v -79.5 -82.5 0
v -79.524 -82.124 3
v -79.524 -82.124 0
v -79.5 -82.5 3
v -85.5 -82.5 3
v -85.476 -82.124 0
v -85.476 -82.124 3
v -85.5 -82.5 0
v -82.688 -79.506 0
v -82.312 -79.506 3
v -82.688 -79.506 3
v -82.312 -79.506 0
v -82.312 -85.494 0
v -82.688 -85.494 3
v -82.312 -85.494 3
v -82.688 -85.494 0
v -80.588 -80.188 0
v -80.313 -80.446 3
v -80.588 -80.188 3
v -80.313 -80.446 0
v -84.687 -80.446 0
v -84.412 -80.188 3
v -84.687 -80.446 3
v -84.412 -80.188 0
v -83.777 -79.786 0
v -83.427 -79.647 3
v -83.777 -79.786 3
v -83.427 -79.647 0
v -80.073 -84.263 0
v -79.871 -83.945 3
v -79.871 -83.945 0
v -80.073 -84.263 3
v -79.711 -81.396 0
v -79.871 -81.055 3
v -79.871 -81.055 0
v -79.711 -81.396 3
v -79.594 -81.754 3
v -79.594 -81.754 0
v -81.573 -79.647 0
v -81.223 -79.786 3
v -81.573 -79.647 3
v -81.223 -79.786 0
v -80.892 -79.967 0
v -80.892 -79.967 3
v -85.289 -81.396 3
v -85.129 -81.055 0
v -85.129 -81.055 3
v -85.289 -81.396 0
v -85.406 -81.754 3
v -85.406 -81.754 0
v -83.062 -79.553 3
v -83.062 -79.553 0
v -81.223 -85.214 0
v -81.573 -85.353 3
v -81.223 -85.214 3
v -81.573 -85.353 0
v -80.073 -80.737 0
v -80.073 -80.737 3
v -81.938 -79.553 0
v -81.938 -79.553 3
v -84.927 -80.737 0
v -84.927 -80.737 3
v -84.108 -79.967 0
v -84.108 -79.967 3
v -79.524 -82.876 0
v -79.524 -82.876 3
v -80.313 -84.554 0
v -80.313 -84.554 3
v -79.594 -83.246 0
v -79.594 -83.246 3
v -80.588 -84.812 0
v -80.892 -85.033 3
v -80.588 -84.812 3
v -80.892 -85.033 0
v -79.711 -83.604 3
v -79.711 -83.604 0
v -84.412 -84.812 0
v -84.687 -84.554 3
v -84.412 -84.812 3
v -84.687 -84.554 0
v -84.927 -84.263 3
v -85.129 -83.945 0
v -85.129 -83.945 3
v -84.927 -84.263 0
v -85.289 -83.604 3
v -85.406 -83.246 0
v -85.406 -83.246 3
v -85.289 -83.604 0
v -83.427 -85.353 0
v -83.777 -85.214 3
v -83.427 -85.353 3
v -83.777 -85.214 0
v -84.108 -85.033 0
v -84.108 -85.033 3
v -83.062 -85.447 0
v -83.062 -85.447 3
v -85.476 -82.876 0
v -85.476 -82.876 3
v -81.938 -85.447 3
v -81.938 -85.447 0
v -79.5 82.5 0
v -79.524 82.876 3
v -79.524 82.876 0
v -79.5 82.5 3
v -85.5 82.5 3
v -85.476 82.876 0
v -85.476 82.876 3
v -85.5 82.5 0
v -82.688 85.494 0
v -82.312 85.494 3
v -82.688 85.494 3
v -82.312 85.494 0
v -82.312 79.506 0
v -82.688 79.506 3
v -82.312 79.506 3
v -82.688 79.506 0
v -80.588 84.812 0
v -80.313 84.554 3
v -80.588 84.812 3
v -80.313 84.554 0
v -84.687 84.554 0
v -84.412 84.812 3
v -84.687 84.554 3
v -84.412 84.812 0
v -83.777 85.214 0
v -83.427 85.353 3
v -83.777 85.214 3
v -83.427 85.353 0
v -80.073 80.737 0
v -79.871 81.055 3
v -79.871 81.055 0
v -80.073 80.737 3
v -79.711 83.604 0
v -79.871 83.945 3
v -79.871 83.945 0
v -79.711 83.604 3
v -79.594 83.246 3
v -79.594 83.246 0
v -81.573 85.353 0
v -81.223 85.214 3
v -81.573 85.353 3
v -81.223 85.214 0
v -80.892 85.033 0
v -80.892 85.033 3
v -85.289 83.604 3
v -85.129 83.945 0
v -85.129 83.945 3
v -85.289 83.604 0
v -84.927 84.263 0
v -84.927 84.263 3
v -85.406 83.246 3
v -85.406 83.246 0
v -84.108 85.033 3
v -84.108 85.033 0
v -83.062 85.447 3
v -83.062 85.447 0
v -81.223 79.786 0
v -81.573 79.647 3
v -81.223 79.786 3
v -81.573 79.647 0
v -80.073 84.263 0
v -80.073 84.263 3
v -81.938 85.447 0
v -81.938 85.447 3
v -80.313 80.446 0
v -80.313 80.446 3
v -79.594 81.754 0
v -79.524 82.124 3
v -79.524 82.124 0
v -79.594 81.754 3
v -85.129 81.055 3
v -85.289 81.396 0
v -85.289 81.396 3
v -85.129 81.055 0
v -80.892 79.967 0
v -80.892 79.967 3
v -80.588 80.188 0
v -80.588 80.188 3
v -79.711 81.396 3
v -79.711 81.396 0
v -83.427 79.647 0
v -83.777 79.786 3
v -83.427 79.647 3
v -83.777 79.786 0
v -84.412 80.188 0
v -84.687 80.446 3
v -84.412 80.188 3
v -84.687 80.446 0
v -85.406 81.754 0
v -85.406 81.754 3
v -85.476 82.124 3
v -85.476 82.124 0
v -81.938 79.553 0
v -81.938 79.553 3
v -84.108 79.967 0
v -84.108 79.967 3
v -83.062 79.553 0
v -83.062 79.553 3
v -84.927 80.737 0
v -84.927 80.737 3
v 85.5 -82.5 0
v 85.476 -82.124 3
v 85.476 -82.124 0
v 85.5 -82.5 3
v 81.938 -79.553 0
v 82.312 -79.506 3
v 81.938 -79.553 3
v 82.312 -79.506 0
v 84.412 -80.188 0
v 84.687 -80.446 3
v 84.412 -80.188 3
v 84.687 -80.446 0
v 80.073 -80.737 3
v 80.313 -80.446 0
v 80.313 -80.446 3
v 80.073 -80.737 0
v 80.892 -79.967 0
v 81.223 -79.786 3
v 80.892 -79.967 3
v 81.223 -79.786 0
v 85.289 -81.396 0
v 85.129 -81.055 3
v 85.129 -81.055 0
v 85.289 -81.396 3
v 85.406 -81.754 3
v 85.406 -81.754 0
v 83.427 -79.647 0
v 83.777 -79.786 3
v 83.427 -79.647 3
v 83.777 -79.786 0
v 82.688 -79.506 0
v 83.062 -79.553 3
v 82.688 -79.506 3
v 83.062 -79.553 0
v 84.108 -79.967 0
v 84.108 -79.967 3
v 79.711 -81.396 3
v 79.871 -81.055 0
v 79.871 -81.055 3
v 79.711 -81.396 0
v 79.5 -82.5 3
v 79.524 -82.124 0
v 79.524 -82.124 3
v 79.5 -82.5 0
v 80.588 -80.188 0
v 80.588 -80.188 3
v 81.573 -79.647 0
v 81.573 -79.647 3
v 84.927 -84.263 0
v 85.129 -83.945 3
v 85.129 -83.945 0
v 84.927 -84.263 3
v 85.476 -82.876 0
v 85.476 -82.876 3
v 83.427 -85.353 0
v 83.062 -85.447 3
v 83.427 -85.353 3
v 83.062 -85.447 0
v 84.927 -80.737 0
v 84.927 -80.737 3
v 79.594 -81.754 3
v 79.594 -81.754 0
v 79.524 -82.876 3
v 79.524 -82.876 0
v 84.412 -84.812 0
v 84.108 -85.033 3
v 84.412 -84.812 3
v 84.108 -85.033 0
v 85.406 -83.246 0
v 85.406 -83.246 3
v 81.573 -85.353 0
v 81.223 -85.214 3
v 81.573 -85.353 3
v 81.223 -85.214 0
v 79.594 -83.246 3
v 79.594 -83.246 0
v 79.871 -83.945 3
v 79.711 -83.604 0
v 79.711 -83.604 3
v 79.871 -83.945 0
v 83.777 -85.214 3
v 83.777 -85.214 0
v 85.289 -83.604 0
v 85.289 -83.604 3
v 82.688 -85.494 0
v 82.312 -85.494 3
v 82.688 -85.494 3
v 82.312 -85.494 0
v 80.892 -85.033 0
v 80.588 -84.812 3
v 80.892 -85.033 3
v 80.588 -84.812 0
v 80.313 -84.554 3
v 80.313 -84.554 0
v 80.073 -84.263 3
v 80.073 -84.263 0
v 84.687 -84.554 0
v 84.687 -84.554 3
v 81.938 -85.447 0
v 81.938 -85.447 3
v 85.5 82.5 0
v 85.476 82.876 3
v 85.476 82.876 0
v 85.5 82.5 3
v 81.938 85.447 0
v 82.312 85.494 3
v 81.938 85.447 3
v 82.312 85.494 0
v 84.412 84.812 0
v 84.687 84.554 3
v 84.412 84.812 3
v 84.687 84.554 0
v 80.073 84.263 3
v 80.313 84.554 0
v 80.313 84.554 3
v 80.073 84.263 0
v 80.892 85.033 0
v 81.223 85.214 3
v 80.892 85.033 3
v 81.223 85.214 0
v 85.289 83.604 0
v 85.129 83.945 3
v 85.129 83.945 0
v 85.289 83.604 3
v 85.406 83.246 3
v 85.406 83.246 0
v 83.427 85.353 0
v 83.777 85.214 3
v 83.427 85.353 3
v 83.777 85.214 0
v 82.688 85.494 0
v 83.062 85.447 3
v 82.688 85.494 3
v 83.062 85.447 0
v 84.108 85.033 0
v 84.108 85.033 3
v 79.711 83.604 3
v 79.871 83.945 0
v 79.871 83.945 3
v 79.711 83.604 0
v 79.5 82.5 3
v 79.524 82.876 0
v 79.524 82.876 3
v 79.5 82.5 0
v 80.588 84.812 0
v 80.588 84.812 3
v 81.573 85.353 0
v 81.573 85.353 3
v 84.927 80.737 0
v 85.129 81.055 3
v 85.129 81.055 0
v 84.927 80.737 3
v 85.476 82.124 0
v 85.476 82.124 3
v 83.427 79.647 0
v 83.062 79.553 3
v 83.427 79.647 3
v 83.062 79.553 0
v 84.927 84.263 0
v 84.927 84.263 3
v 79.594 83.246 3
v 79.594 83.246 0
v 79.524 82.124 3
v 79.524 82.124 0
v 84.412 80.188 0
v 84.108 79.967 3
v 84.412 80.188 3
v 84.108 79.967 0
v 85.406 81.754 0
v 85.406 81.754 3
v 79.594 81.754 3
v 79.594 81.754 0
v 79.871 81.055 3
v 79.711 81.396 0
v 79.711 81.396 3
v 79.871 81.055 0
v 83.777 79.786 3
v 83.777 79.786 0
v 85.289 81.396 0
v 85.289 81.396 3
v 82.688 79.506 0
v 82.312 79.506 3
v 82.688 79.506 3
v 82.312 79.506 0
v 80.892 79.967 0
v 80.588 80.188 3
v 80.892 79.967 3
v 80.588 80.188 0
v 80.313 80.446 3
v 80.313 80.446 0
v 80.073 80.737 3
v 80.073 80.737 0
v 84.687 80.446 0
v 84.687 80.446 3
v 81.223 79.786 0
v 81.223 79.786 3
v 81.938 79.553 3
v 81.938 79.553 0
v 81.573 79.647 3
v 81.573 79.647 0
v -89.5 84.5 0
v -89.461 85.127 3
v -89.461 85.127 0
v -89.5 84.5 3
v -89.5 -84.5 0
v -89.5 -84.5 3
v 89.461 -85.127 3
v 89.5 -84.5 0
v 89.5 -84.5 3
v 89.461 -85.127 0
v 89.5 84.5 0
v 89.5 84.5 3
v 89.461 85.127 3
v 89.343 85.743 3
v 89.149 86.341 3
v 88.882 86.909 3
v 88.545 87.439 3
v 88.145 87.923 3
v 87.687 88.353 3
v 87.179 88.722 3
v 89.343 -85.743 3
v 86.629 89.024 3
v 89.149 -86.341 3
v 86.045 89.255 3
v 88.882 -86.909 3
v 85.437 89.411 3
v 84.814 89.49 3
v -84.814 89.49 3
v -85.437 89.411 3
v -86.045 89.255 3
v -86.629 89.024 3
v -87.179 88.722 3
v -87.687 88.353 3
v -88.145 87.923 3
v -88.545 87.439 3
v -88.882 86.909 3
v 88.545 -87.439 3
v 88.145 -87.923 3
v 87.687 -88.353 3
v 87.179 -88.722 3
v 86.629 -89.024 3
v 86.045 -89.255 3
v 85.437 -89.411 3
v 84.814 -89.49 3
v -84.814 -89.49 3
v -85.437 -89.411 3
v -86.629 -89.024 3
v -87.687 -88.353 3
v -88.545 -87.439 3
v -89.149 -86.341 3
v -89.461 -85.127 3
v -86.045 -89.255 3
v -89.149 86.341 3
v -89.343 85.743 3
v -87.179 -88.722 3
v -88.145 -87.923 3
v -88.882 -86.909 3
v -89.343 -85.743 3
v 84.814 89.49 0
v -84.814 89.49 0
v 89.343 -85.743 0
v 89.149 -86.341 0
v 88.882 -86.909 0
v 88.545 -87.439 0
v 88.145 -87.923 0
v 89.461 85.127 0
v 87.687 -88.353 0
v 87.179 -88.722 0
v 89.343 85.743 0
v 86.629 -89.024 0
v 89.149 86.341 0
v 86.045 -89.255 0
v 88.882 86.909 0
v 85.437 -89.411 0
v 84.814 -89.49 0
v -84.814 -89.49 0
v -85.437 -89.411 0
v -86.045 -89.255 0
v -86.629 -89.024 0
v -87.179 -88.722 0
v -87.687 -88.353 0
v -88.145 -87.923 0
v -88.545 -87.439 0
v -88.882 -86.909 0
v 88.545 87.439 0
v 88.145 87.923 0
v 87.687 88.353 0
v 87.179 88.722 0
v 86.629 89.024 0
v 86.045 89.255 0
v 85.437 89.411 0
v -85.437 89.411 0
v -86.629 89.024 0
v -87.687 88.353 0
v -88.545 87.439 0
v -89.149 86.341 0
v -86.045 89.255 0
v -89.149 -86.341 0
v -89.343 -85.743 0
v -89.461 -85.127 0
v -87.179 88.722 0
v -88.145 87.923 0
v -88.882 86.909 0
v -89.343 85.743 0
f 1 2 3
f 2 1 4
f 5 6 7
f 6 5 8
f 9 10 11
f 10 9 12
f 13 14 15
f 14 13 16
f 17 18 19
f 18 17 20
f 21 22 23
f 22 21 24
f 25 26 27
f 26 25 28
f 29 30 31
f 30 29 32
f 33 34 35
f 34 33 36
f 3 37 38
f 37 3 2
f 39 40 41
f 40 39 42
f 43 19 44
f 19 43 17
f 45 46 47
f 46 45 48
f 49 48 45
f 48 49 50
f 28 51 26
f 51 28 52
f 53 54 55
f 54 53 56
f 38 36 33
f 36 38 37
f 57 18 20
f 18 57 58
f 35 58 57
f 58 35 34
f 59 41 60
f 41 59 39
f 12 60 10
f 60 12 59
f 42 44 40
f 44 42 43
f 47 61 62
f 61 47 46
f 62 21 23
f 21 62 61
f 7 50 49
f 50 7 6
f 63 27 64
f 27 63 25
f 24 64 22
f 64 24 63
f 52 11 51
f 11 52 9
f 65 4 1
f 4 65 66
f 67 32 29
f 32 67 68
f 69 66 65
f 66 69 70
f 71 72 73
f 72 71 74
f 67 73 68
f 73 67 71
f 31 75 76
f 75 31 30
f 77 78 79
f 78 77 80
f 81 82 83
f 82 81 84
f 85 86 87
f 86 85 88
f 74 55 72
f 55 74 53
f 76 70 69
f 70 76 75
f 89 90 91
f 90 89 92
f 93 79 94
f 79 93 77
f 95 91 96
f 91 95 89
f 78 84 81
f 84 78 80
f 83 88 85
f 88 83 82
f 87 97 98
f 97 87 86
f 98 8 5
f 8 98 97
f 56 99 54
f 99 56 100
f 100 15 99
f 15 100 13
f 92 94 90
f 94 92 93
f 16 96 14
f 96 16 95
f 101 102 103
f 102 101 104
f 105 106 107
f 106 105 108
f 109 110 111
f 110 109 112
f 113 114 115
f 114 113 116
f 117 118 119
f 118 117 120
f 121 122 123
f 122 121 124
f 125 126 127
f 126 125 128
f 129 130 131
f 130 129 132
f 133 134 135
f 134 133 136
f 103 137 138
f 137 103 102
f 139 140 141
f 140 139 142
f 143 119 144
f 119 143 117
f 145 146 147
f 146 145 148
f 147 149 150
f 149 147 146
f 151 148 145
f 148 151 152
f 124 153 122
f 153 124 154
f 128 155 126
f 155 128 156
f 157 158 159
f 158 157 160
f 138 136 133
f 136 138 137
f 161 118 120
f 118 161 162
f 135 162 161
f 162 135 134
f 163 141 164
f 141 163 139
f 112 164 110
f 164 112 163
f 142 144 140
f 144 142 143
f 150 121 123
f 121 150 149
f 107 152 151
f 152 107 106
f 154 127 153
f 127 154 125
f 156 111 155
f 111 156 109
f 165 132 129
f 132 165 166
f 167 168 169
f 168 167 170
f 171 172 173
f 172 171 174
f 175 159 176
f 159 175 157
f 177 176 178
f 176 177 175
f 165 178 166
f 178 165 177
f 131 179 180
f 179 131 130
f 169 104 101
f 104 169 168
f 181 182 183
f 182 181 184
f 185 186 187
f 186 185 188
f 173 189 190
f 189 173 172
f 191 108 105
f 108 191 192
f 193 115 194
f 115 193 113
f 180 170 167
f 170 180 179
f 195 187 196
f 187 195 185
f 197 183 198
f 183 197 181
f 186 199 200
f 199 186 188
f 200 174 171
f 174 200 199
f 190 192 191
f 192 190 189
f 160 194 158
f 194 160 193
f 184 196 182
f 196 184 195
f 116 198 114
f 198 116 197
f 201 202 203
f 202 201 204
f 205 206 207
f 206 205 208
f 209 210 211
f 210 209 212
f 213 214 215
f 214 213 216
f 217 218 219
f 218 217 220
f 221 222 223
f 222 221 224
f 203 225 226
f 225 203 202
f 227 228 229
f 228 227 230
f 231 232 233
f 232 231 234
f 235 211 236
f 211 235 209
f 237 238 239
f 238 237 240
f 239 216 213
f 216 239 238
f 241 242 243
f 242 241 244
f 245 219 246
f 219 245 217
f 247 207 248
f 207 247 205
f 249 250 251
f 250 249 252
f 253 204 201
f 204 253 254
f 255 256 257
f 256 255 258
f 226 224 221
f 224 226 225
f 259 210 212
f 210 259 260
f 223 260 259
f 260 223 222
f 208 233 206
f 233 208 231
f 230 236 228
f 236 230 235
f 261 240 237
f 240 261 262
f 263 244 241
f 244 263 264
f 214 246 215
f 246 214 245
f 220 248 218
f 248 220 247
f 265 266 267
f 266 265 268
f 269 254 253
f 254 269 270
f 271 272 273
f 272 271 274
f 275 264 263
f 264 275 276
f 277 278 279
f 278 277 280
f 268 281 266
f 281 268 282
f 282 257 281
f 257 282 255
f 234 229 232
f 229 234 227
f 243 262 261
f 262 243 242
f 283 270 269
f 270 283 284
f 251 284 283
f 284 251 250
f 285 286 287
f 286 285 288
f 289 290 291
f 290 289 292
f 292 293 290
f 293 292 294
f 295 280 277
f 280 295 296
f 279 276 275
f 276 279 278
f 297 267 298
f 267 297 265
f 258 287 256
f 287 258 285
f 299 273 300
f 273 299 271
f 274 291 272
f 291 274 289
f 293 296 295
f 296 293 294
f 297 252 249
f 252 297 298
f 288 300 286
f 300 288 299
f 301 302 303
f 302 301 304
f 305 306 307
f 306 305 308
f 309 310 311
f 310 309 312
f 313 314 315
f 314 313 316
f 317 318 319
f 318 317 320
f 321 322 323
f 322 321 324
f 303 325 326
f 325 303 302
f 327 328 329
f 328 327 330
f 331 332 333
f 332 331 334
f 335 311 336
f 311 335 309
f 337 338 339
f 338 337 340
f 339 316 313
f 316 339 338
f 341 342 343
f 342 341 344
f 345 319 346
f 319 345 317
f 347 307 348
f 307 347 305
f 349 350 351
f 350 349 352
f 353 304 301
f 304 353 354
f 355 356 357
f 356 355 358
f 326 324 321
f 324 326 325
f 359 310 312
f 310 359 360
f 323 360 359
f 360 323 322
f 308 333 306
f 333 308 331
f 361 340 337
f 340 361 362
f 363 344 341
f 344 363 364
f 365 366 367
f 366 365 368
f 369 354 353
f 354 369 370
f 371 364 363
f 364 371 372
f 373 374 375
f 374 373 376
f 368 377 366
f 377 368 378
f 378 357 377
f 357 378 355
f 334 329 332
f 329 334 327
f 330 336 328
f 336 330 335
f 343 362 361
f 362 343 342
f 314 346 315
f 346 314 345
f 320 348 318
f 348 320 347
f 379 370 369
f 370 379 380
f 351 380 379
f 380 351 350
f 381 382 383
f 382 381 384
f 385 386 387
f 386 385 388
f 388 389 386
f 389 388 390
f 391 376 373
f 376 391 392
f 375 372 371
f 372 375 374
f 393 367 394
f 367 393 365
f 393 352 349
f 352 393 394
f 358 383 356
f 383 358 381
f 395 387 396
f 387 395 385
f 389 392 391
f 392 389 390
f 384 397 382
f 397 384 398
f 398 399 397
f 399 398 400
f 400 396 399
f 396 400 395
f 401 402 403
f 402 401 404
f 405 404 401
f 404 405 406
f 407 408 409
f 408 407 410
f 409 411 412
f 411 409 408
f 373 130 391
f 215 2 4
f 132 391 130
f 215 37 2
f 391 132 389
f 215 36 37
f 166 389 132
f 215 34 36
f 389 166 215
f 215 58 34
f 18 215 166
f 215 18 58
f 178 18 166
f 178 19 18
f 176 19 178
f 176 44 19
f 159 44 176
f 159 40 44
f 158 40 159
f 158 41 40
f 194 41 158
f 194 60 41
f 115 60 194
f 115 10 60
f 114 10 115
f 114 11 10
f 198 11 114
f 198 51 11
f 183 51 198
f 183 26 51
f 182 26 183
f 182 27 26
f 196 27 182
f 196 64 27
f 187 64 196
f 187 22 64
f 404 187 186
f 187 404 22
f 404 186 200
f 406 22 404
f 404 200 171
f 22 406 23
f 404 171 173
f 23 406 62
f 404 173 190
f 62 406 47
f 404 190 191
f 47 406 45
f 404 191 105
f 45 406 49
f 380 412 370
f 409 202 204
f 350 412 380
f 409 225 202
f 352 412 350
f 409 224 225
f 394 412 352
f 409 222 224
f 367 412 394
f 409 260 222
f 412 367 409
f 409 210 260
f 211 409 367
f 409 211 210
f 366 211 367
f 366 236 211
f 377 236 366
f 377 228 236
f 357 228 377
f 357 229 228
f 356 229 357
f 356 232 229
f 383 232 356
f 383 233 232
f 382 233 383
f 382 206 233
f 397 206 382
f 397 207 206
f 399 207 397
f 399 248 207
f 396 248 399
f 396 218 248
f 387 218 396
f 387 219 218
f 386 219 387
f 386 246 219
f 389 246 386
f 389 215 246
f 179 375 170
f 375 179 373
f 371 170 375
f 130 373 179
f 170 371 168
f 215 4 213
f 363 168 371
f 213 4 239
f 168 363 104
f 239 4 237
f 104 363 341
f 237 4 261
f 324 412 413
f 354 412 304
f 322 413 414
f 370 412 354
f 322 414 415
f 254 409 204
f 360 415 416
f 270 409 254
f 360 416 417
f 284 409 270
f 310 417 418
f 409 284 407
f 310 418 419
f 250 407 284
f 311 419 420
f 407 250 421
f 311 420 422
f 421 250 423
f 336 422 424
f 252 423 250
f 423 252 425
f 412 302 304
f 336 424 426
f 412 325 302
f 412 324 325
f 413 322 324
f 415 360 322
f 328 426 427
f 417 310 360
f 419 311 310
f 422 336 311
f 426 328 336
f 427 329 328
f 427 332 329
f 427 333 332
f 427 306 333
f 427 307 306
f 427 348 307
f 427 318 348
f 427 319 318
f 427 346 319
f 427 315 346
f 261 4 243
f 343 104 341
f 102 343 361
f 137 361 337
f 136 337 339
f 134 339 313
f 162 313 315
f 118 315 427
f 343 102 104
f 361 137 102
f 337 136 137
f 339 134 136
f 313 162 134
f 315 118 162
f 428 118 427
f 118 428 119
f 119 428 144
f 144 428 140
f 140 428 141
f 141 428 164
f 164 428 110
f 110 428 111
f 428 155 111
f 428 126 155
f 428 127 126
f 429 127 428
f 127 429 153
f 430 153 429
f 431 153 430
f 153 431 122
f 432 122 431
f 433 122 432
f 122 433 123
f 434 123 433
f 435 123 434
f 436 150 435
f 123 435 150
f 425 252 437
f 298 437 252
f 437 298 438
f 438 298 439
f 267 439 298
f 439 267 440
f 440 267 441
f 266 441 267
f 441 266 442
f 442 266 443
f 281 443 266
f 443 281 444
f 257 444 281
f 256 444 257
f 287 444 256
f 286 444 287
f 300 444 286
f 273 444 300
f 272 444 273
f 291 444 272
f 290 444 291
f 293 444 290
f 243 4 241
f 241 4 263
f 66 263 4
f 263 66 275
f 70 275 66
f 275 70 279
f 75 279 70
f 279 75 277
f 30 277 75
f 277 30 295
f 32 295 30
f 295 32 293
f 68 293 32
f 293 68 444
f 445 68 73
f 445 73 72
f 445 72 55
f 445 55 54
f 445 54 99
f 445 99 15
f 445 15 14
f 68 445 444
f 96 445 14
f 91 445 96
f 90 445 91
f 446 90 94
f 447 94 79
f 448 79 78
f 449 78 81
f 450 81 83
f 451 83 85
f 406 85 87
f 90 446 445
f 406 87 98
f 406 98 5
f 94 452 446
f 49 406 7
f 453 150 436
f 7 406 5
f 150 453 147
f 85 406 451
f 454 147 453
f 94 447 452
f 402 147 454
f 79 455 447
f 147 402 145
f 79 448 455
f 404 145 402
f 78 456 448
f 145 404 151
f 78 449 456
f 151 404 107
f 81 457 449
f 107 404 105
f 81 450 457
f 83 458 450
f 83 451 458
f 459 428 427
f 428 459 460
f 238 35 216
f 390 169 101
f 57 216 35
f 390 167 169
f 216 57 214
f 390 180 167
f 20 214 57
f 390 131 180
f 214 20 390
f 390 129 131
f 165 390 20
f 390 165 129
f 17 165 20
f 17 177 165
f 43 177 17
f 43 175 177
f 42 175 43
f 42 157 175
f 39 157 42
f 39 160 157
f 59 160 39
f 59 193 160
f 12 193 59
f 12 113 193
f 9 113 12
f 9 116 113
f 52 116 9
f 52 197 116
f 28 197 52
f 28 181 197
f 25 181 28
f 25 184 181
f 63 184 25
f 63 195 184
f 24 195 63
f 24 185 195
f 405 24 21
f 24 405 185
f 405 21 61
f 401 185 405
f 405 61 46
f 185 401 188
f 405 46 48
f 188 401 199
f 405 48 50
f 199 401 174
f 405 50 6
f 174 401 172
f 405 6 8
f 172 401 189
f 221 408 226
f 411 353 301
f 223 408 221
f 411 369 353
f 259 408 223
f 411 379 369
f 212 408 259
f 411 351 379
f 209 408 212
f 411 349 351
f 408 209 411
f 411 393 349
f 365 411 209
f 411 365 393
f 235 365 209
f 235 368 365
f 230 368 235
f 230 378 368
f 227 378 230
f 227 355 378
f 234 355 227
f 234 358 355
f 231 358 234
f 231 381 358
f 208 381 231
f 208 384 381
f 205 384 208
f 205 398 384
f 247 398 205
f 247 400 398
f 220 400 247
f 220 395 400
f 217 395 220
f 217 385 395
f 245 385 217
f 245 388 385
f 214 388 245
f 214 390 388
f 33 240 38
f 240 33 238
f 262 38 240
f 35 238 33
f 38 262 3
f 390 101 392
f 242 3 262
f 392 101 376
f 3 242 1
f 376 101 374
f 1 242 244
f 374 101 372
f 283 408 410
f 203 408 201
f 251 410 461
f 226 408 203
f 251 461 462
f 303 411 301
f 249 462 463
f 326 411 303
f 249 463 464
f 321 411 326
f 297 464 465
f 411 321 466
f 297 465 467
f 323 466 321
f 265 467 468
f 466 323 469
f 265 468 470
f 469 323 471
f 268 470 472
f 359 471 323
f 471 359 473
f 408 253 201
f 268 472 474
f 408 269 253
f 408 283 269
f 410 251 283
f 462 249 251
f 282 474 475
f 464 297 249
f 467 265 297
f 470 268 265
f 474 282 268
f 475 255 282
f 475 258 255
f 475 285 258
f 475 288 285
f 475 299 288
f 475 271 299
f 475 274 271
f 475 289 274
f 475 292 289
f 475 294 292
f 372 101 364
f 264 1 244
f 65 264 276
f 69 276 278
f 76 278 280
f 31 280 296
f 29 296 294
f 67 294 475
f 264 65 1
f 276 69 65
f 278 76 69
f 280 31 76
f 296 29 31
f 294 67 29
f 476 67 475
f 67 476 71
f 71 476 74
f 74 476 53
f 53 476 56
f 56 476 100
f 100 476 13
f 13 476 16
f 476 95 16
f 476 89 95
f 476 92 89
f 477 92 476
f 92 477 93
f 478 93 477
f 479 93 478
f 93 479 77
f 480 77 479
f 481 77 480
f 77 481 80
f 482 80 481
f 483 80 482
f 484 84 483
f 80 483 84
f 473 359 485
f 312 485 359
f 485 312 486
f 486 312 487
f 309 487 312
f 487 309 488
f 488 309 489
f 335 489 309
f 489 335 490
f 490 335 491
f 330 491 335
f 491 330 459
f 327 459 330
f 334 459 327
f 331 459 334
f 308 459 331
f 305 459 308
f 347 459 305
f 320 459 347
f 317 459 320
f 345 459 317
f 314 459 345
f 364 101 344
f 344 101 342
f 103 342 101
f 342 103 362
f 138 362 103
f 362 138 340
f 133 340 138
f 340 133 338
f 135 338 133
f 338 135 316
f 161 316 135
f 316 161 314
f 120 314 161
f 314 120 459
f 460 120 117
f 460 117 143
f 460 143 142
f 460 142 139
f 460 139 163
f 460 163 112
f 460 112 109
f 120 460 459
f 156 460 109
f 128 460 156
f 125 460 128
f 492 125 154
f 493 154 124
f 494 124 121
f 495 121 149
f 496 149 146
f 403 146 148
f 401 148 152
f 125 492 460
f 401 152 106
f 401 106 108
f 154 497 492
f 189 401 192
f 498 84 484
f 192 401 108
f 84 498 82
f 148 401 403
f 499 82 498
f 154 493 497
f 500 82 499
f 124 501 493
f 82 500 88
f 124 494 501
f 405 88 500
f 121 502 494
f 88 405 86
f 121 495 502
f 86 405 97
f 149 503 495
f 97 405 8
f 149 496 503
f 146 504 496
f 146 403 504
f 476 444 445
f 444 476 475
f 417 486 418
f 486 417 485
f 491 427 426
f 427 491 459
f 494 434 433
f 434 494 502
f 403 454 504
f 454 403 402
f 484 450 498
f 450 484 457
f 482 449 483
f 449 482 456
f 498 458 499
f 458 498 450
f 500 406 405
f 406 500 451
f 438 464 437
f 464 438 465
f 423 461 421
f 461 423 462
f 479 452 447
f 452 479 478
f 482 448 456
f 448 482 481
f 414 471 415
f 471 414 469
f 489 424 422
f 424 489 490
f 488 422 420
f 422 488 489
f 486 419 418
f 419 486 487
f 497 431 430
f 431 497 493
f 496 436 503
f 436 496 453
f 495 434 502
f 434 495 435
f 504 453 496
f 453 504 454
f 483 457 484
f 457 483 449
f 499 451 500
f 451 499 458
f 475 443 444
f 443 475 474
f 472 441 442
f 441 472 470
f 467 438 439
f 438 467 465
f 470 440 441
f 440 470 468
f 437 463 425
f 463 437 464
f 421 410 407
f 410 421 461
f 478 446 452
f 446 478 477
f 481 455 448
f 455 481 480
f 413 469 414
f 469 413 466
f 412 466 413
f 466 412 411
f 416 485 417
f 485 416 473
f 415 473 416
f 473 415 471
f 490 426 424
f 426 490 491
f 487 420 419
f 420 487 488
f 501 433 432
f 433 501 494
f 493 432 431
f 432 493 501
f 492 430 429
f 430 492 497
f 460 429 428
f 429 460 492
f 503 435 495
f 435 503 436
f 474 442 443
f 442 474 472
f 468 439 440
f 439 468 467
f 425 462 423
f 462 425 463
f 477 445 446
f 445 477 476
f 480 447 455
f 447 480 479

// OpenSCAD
$fn = 50;


difference() {
	union() {
		hull() {
			translate(v = [-84.5000000000, 84.5000000000, 0]) {
				cylinder(h = 3, r = 5);
			}
			translate(v = [84.5000000000, 84.5000000000, 0]) {
				cylinder(h = 3, r = 5);
			}
			translate(v = [-84.5000000000, -84.5000000000, 0]) {
				cylinder(h = 3, r = 5);
			}
			translate(v = [84.5000000000, -84.5000000000, 0]) {
				cylinder(h = 3, r = 5);
			}
		}
	}
	union() {
		translate(v = [-82.5000000000, -82.5000000000, -100.0000000000]) {
			cylinder(h = 200, r = 3.0000000000);
		}
		translate(v = [-82.5000000000, 82.5000000000, -100.0000000000]) {
			cylinder(h = 200, r = 3.0000000000);
		}
		translate(v = [82.5000000000, -82.5000000000, -100.0000000000]) {
			cylinder(h = 200, r = 3.0000000000);
		}
		translate(v = [82.5000000000, 82.5000000000, -100.0000000000]) {
			cylinder(h = 200, r = 3.0000000000);
		}
	}
}
